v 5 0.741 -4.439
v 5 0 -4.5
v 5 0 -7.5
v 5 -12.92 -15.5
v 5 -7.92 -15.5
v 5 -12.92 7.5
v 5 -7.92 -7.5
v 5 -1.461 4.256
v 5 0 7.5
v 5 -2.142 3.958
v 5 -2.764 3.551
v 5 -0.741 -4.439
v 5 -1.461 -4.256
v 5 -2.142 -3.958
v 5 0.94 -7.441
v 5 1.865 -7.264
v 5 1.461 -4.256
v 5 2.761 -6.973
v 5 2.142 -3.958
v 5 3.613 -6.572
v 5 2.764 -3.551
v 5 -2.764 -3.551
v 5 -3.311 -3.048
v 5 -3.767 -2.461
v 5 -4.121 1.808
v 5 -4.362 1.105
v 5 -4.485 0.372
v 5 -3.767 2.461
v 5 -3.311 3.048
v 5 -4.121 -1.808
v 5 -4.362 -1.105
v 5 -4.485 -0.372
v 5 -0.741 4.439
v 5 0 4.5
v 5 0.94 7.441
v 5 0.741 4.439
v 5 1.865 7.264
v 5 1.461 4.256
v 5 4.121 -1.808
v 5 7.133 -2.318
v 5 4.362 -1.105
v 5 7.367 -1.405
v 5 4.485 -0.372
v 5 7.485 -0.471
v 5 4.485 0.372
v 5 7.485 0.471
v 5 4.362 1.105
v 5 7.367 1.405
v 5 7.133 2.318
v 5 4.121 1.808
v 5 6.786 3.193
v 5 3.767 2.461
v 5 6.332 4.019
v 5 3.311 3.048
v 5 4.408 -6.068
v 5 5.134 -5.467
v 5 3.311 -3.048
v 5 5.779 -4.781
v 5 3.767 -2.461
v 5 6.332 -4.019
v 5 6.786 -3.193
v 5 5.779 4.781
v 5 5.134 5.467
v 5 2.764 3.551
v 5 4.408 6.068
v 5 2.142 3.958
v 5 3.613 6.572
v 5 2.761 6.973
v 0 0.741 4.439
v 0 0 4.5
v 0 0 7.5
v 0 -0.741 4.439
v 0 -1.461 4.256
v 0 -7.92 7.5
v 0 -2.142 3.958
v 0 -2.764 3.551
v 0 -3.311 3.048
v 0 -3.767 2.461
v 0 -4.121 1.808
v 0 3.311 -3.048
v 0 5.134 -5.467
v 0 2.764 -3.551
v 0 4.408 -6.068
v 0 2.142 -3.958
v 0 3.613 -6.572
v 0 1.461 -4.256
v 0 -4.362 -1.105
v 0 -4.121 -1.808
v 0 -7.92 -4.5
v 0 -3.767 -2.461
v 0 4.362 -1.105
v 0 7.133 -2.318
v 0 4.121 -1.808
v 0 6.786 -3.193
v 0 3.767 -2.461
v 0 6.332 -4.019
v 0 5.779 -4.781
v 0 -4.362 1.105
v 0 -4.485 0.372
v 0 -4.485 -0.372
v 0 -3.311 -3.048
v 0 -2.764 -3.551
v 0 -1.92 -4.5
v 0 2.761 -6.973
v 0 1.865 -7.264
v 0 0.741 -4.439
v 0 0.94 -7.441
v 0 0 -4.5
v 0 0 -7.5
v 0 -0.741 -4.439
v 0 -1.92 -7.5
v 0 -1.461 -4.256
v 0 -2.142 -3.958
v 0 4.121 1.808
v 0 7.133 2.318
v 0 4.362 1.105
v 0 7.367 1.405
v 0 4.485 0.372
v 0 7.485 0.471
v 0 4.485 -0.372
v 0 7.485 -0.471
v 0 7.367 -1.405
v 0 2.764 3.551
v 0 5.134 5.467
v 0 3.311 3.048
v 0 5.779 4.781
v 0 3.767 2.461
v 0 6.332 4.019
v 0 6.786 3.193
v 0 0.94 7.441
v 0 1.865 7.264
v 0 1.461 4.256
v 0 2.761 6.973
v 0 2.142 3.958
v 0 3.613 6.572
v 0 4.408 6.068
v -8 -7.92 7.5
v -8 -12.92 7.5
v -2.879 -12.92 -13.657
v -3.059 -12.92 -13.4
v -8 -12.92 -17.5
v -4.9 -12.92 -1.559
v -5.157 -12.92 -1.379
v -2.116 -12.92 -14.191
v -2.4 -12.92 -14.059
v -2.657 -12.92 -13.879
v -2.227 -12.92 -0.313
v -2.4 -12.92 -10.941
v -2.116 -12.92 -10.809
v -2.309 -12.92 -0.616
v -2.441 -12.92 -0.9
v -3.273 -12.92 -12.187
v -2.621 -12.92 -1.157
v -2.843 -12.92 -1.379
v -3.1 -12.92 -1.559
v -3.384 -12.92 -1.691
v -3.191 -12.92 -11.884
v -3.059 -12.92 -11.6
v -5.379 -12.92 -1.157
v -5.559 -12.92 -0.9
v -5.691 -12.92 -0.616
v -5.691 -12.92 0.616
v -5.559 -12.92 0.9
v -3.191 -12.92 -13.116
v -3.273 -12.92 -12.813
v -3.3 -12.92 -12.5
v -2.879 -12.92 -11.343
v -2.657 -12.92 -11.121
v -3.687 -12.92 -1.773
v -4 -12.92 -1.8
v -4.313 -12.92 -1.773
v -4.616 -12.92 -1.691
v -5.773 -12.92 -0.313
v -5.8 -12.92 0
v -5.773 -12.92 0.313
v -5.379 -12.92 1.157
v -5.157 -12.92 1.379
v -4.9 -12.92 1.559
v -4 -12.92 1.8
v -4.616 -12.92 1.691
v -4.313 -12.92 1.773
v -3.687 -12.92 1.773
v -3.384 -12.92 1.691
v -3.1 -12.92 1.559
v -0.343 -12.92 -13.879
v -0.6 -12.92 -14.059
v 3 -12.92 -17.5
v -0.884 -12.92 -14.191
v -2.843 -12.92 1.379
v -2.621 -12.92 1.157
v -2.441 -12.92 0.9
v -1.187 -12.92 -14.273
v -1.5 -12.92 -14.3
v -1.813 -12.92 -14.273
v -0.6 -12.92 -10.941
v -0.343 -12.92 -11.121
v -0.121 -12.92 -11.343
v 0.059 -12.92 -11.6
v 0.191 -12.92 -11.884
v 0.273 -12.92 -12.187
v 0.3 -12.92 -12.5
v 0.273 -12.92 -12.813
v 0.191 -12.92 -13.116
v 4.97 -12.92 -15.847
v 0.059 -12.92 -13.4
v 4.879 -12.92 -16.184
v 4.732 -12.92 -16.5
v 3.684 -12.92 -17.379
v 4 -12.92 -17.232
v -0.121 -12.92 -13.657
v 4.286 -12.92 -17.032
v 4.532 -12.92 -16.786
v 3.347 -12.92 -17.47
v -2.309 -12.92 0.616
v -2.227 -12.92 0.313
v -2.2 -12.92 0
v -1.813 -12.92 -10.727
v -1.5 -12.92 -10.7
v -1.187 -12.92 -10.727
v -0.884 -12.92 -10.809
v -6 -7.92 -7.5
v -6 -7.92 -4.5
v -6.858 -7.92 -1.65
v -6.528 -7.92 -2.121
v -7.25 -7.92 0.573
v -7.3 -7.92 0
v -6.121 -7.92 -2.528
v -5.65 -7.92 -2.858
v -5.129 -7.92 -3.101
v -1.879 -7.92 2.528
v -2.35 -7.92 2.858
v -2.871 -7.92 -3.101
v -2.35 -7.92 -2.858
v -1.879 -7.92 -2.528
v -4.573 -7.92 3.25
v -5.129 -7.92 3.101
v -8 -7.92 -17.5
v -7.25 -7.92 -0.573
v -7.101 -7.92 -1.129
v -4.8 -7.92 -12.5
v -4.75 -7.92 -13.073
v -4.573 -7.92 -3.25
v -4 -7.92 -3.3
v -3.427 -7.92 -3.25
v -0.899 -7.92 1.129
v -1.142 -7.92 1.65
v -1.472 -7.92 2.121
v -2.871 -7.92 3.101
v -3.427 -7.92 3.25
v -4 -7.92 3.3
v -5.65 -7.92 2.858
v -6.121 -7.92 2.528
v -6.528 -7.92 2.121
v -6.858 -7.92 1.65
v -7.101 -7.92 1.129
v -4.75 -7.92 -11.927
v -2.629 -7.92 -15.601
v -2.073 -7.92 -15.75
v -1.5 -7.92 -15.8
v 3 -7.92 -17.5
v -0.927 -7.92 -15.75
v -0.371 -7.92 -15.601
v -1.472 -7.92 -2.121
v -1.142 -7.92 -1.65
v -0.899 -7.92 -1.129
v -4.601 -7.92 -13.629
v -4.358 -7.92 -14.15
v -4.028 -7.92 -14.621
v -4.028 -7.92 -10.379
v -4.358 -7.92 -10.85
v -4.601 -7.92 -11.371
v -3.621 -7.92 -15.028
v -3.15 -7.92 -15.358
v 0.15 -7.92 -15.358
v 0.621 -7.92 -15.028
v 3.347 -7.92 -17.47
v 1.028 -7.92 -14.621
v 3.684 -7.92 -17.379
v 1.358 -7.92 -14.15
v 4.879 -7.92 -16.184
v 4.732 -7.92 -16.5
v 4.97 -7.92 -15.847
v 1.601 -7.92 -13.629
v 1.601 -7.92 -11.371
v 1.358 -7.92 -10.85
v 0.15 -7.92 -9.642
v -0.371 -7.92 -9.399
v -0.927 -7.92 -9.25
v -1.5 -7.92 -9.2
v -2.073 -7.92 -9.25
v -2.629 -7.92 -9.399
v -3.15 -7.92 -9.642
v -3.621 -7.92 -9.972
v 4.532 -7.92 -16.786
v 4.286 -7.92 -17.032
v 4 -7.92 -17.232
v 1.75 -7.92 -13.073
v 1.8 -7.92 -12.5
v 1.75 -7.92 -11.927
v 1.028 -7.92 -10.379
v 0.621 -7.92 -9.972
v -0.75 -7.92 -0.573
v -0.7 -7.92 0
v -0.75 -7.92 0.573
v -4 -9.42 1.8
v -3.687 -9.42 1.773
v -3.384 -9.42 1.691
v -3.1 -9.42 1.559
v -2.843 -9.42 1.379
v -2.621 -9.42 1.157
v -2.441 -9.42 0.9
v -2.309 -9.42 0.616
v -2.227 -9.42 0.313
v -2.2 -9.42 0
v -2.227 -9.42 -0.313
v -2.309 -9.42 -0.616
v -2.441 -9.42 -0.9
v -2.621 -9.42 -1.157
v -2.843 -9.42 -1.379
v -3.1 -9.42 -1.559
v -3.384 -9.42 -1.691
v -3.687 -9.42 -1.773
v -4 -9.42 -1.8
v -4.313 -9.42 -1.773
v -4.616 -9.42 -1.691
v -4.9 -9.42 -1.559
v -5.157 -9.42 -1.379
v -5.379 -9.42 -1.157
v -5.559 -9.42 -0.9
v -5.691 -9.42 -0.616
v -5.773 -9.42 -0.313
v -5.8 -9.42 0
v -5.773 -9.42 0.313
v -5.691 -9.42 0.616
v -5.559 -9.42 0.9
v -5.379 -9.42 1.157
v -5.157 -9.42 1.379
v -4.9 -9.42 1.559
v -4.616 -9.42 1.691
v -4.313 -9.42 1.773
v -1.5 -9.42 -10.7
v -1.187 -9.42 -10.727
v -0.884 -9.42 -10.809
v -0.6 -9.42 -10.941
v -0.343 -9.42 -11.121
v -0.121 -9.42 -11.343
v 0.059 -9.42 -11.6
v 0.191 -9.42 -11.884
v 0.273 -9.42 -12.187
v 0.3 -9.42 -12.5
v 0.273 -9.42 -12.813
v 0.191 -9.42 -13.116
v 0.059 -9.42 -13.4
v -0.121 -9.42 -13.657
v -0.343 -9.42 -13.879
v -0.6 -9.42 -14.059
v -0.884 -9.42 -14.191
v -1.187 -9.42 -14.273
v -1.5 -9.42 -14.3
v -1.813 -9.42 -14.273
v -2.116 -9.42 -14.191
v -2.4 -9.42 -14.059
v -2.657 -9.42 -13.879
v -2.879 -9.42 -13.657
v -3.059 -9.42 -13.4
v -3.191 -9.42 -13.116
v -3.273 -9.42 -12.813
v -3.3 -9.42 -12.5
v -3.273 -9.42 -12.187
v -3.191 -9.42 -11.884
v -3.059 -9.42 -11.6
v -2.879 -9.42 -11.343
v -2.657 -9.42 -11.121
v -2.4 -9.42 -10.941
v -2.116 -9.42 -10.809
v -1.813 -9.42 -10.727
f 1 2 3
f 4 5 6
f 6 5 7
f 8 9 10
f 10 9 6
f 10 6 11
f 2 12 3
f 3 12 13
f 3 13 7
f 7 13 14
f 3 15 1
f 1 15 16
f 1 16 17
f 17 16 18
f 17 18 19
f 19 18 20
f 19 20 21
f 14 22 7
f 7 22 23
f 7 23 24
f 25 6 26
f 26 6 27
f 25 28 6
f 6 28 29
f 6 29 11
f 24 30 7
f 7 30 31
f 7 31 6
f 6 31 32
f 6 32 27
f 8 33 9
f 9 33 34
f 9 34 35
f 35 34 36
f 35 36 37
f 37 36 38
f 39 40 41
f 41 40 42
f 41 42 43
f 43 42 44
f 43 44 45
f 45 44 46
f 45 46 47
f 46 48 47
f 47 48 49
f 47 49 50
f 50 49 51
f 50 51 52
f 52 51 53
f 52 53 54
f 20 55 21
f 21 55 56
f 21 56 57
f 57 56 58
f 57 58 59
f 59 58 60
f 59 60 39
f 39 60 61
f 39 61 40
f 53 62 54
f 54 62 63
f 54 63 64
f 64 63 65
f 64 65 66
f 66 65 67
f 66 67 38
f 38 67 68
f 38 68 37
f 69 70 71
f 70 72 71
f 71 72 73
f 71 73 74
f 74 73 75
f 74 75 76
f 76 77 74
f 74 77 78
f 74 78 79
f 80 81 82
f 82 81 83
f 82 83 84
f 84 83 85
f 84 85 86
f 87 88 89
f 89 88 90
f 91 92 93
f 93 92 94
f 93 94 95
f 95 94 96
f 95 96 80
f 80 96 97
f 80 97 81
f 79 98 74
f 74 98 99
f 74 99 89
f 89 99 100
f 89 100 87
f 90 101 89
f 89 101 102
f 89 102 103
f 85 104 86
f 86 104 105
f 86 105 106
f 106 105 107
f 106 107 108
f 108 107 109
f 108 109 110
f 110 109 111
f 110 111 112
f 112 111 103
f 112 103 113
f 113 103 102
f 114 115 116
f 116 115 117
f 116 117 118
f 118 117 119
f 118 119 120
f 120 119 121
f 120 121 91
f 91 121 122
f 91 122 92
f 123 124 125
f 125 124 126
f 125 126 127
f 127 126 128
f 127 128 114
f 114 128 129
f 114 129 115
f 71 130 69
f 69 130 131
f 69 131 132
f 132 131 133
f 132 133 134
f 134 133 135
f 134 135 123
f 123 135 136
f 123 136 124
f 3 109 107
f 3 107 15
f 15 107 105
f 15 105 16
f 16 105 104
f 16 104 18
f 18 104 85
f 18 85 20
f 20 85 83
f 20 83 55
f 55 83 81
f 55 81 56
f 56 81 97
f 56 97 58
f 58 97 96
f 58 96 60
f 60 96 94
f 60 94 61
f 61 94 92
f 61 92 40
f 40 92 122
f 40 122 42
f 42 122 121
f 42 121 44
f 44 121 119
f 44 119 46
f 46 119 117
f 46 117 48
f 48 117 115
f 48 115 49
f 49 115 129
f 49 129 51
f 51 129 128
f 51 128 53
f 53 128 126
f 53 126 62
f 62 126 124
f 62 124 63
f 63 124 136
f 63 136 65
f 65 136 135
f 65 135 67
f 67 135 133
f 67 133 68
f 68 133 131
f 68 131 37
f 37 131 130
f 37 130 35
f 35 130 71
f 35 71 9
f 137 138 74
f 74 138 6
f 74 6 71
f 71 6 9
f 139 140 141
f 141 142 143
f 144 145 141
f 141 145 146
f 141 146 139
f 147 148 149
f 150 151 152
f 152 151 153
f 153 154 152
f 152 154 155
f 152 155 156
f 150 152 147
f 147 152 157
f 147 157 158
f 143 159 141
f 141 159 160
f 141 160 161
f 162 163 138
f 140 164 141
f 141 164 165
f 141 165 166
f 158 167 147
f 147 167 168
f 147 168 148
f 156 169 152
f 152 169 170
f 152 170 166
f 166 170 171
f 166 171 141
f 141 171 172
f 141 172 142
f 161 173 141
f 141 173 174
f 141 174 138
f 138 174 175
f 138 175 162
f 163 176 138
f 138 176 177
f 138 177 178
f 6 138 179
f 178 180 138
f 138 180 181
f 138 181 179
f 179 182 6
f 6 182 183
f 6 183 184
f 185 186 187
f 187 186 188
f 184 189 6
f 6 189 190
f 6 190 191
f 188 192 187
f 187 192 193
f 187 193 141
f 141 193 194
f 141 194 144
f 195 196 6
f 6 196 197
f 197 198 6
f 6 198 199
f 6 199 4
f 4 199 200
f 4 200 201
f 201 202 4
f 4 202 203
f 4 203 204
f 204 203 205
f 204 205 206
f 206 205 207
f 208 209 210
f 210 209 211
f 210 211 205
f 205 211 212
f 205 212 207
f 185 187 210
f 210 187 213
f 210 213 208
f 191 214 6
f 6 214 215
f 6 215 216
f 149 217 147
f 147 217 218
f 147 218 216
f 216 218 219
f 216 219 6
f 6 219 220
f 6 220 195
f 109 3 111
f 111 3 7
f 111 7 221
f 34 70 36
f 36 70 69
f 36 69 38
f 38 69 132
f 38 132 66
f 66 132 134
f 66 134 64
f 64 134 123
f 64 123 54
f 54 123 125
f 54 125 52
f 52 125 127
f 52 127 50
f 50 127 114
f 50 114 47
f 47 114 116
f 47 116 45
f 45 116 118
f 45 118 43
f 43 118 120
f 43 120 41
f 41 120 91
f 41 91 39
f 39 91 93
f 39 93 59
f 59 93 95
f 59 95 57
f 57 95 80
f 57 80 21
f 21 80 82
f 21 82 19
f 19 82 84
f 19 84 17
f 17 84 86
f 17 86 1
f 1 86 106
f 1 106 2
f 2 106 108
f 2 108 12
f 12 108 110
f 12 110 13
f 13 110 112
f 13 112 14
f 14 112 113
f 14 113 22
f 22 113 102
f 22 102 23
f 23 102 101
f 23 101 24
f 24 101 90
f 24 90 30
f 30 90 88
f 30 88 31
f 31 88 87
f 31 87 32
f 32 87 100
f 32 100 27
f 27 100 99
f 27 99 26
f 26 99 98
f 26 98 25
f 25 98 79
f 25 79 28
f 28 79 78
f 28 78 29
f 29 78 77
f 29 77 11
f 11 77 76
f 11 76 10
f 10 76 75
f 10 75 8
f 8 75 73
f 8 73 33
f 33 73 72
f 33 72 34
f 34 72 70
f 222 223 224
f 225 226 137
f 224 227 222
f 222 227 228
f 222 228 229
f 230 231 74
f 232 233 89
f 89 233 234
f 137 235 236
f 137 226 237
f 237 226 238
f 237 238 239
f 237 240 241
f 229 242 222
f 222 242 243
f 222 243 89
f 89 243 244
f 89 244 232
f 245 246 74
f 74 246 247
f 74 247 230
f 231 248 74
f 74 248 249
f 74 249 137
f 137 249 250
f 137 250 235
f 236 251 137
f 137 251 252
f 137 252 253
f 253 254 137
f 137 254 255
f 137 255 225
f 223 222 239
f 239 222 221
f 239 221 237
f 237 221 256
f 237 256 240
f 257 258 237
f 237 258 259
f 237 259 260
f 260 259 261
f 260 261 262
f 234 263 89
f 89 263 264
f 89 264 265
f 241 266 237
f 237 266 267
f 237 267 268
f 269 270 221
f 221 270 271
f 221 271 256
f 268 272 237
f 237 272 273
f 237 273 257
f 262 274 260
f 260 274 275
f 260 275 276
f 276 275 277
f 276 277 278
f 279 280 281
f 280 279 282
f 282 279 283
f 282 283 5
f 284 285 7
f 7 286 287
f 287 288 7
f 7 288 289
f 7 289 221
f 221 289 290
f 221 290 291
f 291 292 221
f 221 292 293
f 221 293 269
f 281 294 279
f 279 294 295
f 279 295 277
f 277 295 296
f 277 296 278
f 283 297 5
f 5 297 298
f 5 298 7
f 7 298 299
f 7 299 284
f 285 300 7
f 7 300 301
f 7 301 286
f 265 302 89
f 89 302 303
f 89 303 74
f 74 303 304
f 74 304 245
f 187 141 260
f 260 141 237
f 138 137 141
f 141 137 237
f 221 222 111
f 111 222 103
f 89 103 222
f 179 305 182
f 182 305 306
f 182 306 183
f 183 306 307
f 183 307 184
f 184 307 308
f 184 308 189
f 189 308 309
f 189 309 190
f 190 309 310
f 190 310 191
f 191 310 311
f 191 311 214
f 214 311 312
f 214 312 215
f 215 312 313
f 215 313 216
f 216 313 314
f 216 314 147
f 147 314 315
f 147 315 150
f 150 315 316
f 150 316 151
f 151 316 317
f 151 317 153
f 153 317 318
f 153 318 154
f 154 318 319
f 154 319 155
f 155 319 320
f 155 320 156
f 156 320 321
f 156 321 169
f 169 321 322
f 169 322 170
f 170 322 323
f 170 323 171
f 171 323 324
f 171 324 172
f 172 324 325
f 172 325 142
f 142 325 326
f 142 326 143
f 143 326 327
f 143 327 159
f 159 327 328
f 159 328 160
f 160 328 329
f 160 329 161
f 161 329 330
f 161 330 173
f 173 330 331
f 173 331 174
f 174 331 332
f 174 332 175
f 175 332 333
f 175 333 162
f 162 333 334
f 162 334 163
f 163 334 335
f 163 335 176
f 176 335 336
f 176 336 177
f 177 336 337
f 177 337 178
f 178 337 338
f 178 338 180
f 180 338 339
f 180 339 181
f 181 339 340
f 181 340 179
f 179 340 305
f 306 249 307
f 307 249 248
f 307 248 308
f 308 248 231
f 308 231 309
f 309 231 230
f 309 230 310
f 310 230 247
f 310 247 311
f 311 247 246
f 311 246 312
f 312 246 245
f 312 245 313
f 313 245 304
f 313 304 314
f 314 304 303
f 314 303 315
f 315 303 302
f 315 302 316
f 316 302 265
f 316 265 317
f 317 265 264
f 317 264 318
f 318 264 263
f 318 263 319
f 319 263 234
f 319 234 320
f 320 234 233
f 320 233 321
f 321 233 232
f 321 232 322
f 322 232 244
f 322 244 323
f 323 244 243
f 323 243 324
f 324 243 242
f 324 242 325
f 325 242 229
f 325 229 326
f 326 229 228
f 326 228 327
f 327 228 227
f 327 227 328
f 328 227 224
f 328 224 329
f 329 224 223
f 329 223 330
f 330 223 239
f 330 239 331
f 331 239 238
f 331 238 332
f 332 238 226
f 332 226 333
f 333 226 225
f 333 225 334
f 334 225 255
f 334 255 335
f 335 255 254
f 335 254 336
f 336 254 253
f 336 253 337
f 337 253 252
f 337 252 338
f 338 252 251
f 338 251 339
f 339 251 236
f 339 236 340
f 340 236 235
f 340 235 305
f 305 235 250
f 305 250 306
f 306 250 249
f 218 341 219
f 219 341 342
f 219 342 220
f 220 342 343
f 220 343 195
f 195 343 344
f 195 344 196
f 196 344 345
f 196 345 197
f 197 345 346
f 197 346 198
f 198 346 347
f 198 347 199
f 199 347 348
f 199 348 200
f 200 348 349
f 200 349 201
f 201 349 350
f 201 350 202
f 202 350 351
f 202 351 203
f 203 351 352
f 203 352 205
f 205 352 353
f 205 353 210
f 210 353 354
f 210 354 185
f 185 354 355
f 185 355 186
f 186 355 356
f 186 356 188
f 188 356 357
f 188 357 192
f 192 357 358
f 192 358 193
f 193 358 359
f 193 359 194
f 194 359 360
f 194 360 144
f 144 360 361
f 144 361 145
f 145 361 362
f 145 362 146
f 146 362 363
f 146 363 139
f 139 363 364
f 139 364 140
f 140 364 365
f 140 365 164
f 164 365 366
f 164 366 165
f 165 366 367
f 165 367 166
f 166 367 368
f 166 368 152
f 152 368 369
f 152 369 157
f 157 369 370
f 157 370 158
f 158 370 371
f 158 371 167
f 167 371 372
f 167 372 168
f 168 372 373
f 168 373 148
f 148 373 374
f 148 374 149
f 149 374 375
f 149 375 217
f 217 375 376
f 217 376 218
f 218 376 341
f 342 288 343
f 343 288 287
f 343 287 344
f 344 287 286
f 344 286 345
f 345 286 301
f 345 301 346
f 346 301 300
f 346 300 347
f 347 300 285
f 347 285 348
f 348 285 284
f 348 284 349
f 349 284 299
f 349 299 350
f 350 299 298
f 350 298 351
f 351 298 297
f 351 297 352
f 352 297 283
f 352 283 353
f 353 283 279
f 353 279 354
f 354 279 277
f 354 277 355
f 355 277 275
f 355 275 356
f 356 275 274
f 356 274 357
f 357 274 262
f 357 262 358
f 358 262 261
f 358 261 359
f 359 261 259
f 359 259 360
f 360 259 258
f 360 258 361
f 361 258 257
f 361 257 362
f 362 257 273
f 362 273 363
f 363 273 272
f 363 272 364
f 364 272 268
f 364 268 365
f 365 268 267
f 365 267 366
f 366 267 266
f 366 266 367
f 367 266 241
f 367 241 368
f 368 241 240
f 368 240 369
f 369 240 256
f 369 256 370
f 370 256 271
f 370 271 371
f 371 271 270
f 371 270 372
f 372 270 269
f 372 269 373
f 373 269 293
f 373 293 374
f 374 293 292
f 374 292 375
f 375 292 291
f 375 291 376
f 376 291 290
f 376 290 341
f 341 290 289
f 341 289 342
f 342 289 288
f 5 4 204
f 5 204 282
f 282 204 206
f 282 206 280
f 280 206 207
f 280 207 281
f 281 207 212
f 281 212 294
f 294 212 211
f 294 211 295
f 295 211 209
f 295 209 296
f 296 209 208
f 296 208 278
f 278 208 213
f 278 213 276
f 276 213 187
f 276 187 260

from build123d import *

# Parameters (mm, degrees)
SKETCH_1_R                = 4.5
EXTRUDE_1_DEPTH           = 5
SKETCH_2_W                = 13
SKETCH_2_H                = 25
EXTRUDE_2_DEPTH           = 5
RIB_1_REACH               = 23.352
SKETCH_3_WALL_W           = 53.190153214
SKETCH_3_WALL_H           = 3
HOLE_WIZARD_1_D           = 3.6
HOLE_WIZARD_1_CSINK_D     = 6.6
HOLE_WIZARD_1_CSINK_ANGLE = 90
FILLET_1_R                = 2


with BuildPart() as part:
    # 草图1 → 凸台-拉伸1 (new body)
    with BuildSketch(Plane(origin=(0, 0, 0), x_dir=(0, 0, -1), z_dir=(1, 0, 0))):
        with BuildLine():
            Line((7.5, 0), (7.5, -12.920004632))
            Line((7.5, -12.920004632), (-7.5, -12.920004632))
            Line((-7.5, -12.920004632), (-7.5, 0))
            ThreePointArc((-7.5, 0), (0, 7.5), (7.5, 0))
        make_face()
        Circle(SKETCH_1_R, mode=Mode.SUBTRACT)
    extrude(amount=EXTRUDE_1_DEPTH)

    # 草图2 → 凸台-拉伸2 (add)
    with BuildSketch(Plane.XZ.offset(12.920004632)):
        with Locations((-1.5, -5)):
            Rectangle(SKETCH_2_W, SKETCH_2_H)
    extrude(amount=-EXTRUDE_2_DEPTH)

    # 草图3 wall → 筋1 (add, up to next)
    with BuildSketch(Plane(origin=(-3, -4.920004632, -7.5), x_dir=(-0.707106781187, -0.707106781187, 0), z_dir=(-0.707106781187, 0.707106781187, 0)), mode=Mode.PRIVATE) as rib_1_sk1:
        with Locations((0, 1.5)):
            Rectangle(SKETCH_3_WALL_W, SKETCH_3_WALL_H)
    rib_1_tool1 = extrude(rib_1_sk1.sketch, amount=-RIB_1_REACH, mode=Mode.PRIVATE) - part.part
    add(rib_1_tool1.solids().sort_by_distance((-3, -4.920004632, -7.5))[0])

    # 打孔尺寸(%根据十字)槽半沉头木螺钉的类型1 (through all)
    with Locations(Plane(origin=(0, -7.920004632, 0), x_dir=(1, 0, 0), z_dir=(0, 1, 0))):
        with Locations((-1.5, 12.5), (-4, 0)):
            CounterSinkHole(HOLE_WIZARD_1_D / 2, HOLE_WIZARD_1_CSINK_D / 2, counter_sink_angle=HOLE_WIZARD_1_CSINK_ANGLE)

    # 圆角1
    fillet_1_edges = [part.edges().sort_by_distance(p)[0] for p in [
        (5, -10.420004632, -17.5),
    ]]
    fillet(fillet_1_edges, radius=FILLET_1_R)


solid = part.part
